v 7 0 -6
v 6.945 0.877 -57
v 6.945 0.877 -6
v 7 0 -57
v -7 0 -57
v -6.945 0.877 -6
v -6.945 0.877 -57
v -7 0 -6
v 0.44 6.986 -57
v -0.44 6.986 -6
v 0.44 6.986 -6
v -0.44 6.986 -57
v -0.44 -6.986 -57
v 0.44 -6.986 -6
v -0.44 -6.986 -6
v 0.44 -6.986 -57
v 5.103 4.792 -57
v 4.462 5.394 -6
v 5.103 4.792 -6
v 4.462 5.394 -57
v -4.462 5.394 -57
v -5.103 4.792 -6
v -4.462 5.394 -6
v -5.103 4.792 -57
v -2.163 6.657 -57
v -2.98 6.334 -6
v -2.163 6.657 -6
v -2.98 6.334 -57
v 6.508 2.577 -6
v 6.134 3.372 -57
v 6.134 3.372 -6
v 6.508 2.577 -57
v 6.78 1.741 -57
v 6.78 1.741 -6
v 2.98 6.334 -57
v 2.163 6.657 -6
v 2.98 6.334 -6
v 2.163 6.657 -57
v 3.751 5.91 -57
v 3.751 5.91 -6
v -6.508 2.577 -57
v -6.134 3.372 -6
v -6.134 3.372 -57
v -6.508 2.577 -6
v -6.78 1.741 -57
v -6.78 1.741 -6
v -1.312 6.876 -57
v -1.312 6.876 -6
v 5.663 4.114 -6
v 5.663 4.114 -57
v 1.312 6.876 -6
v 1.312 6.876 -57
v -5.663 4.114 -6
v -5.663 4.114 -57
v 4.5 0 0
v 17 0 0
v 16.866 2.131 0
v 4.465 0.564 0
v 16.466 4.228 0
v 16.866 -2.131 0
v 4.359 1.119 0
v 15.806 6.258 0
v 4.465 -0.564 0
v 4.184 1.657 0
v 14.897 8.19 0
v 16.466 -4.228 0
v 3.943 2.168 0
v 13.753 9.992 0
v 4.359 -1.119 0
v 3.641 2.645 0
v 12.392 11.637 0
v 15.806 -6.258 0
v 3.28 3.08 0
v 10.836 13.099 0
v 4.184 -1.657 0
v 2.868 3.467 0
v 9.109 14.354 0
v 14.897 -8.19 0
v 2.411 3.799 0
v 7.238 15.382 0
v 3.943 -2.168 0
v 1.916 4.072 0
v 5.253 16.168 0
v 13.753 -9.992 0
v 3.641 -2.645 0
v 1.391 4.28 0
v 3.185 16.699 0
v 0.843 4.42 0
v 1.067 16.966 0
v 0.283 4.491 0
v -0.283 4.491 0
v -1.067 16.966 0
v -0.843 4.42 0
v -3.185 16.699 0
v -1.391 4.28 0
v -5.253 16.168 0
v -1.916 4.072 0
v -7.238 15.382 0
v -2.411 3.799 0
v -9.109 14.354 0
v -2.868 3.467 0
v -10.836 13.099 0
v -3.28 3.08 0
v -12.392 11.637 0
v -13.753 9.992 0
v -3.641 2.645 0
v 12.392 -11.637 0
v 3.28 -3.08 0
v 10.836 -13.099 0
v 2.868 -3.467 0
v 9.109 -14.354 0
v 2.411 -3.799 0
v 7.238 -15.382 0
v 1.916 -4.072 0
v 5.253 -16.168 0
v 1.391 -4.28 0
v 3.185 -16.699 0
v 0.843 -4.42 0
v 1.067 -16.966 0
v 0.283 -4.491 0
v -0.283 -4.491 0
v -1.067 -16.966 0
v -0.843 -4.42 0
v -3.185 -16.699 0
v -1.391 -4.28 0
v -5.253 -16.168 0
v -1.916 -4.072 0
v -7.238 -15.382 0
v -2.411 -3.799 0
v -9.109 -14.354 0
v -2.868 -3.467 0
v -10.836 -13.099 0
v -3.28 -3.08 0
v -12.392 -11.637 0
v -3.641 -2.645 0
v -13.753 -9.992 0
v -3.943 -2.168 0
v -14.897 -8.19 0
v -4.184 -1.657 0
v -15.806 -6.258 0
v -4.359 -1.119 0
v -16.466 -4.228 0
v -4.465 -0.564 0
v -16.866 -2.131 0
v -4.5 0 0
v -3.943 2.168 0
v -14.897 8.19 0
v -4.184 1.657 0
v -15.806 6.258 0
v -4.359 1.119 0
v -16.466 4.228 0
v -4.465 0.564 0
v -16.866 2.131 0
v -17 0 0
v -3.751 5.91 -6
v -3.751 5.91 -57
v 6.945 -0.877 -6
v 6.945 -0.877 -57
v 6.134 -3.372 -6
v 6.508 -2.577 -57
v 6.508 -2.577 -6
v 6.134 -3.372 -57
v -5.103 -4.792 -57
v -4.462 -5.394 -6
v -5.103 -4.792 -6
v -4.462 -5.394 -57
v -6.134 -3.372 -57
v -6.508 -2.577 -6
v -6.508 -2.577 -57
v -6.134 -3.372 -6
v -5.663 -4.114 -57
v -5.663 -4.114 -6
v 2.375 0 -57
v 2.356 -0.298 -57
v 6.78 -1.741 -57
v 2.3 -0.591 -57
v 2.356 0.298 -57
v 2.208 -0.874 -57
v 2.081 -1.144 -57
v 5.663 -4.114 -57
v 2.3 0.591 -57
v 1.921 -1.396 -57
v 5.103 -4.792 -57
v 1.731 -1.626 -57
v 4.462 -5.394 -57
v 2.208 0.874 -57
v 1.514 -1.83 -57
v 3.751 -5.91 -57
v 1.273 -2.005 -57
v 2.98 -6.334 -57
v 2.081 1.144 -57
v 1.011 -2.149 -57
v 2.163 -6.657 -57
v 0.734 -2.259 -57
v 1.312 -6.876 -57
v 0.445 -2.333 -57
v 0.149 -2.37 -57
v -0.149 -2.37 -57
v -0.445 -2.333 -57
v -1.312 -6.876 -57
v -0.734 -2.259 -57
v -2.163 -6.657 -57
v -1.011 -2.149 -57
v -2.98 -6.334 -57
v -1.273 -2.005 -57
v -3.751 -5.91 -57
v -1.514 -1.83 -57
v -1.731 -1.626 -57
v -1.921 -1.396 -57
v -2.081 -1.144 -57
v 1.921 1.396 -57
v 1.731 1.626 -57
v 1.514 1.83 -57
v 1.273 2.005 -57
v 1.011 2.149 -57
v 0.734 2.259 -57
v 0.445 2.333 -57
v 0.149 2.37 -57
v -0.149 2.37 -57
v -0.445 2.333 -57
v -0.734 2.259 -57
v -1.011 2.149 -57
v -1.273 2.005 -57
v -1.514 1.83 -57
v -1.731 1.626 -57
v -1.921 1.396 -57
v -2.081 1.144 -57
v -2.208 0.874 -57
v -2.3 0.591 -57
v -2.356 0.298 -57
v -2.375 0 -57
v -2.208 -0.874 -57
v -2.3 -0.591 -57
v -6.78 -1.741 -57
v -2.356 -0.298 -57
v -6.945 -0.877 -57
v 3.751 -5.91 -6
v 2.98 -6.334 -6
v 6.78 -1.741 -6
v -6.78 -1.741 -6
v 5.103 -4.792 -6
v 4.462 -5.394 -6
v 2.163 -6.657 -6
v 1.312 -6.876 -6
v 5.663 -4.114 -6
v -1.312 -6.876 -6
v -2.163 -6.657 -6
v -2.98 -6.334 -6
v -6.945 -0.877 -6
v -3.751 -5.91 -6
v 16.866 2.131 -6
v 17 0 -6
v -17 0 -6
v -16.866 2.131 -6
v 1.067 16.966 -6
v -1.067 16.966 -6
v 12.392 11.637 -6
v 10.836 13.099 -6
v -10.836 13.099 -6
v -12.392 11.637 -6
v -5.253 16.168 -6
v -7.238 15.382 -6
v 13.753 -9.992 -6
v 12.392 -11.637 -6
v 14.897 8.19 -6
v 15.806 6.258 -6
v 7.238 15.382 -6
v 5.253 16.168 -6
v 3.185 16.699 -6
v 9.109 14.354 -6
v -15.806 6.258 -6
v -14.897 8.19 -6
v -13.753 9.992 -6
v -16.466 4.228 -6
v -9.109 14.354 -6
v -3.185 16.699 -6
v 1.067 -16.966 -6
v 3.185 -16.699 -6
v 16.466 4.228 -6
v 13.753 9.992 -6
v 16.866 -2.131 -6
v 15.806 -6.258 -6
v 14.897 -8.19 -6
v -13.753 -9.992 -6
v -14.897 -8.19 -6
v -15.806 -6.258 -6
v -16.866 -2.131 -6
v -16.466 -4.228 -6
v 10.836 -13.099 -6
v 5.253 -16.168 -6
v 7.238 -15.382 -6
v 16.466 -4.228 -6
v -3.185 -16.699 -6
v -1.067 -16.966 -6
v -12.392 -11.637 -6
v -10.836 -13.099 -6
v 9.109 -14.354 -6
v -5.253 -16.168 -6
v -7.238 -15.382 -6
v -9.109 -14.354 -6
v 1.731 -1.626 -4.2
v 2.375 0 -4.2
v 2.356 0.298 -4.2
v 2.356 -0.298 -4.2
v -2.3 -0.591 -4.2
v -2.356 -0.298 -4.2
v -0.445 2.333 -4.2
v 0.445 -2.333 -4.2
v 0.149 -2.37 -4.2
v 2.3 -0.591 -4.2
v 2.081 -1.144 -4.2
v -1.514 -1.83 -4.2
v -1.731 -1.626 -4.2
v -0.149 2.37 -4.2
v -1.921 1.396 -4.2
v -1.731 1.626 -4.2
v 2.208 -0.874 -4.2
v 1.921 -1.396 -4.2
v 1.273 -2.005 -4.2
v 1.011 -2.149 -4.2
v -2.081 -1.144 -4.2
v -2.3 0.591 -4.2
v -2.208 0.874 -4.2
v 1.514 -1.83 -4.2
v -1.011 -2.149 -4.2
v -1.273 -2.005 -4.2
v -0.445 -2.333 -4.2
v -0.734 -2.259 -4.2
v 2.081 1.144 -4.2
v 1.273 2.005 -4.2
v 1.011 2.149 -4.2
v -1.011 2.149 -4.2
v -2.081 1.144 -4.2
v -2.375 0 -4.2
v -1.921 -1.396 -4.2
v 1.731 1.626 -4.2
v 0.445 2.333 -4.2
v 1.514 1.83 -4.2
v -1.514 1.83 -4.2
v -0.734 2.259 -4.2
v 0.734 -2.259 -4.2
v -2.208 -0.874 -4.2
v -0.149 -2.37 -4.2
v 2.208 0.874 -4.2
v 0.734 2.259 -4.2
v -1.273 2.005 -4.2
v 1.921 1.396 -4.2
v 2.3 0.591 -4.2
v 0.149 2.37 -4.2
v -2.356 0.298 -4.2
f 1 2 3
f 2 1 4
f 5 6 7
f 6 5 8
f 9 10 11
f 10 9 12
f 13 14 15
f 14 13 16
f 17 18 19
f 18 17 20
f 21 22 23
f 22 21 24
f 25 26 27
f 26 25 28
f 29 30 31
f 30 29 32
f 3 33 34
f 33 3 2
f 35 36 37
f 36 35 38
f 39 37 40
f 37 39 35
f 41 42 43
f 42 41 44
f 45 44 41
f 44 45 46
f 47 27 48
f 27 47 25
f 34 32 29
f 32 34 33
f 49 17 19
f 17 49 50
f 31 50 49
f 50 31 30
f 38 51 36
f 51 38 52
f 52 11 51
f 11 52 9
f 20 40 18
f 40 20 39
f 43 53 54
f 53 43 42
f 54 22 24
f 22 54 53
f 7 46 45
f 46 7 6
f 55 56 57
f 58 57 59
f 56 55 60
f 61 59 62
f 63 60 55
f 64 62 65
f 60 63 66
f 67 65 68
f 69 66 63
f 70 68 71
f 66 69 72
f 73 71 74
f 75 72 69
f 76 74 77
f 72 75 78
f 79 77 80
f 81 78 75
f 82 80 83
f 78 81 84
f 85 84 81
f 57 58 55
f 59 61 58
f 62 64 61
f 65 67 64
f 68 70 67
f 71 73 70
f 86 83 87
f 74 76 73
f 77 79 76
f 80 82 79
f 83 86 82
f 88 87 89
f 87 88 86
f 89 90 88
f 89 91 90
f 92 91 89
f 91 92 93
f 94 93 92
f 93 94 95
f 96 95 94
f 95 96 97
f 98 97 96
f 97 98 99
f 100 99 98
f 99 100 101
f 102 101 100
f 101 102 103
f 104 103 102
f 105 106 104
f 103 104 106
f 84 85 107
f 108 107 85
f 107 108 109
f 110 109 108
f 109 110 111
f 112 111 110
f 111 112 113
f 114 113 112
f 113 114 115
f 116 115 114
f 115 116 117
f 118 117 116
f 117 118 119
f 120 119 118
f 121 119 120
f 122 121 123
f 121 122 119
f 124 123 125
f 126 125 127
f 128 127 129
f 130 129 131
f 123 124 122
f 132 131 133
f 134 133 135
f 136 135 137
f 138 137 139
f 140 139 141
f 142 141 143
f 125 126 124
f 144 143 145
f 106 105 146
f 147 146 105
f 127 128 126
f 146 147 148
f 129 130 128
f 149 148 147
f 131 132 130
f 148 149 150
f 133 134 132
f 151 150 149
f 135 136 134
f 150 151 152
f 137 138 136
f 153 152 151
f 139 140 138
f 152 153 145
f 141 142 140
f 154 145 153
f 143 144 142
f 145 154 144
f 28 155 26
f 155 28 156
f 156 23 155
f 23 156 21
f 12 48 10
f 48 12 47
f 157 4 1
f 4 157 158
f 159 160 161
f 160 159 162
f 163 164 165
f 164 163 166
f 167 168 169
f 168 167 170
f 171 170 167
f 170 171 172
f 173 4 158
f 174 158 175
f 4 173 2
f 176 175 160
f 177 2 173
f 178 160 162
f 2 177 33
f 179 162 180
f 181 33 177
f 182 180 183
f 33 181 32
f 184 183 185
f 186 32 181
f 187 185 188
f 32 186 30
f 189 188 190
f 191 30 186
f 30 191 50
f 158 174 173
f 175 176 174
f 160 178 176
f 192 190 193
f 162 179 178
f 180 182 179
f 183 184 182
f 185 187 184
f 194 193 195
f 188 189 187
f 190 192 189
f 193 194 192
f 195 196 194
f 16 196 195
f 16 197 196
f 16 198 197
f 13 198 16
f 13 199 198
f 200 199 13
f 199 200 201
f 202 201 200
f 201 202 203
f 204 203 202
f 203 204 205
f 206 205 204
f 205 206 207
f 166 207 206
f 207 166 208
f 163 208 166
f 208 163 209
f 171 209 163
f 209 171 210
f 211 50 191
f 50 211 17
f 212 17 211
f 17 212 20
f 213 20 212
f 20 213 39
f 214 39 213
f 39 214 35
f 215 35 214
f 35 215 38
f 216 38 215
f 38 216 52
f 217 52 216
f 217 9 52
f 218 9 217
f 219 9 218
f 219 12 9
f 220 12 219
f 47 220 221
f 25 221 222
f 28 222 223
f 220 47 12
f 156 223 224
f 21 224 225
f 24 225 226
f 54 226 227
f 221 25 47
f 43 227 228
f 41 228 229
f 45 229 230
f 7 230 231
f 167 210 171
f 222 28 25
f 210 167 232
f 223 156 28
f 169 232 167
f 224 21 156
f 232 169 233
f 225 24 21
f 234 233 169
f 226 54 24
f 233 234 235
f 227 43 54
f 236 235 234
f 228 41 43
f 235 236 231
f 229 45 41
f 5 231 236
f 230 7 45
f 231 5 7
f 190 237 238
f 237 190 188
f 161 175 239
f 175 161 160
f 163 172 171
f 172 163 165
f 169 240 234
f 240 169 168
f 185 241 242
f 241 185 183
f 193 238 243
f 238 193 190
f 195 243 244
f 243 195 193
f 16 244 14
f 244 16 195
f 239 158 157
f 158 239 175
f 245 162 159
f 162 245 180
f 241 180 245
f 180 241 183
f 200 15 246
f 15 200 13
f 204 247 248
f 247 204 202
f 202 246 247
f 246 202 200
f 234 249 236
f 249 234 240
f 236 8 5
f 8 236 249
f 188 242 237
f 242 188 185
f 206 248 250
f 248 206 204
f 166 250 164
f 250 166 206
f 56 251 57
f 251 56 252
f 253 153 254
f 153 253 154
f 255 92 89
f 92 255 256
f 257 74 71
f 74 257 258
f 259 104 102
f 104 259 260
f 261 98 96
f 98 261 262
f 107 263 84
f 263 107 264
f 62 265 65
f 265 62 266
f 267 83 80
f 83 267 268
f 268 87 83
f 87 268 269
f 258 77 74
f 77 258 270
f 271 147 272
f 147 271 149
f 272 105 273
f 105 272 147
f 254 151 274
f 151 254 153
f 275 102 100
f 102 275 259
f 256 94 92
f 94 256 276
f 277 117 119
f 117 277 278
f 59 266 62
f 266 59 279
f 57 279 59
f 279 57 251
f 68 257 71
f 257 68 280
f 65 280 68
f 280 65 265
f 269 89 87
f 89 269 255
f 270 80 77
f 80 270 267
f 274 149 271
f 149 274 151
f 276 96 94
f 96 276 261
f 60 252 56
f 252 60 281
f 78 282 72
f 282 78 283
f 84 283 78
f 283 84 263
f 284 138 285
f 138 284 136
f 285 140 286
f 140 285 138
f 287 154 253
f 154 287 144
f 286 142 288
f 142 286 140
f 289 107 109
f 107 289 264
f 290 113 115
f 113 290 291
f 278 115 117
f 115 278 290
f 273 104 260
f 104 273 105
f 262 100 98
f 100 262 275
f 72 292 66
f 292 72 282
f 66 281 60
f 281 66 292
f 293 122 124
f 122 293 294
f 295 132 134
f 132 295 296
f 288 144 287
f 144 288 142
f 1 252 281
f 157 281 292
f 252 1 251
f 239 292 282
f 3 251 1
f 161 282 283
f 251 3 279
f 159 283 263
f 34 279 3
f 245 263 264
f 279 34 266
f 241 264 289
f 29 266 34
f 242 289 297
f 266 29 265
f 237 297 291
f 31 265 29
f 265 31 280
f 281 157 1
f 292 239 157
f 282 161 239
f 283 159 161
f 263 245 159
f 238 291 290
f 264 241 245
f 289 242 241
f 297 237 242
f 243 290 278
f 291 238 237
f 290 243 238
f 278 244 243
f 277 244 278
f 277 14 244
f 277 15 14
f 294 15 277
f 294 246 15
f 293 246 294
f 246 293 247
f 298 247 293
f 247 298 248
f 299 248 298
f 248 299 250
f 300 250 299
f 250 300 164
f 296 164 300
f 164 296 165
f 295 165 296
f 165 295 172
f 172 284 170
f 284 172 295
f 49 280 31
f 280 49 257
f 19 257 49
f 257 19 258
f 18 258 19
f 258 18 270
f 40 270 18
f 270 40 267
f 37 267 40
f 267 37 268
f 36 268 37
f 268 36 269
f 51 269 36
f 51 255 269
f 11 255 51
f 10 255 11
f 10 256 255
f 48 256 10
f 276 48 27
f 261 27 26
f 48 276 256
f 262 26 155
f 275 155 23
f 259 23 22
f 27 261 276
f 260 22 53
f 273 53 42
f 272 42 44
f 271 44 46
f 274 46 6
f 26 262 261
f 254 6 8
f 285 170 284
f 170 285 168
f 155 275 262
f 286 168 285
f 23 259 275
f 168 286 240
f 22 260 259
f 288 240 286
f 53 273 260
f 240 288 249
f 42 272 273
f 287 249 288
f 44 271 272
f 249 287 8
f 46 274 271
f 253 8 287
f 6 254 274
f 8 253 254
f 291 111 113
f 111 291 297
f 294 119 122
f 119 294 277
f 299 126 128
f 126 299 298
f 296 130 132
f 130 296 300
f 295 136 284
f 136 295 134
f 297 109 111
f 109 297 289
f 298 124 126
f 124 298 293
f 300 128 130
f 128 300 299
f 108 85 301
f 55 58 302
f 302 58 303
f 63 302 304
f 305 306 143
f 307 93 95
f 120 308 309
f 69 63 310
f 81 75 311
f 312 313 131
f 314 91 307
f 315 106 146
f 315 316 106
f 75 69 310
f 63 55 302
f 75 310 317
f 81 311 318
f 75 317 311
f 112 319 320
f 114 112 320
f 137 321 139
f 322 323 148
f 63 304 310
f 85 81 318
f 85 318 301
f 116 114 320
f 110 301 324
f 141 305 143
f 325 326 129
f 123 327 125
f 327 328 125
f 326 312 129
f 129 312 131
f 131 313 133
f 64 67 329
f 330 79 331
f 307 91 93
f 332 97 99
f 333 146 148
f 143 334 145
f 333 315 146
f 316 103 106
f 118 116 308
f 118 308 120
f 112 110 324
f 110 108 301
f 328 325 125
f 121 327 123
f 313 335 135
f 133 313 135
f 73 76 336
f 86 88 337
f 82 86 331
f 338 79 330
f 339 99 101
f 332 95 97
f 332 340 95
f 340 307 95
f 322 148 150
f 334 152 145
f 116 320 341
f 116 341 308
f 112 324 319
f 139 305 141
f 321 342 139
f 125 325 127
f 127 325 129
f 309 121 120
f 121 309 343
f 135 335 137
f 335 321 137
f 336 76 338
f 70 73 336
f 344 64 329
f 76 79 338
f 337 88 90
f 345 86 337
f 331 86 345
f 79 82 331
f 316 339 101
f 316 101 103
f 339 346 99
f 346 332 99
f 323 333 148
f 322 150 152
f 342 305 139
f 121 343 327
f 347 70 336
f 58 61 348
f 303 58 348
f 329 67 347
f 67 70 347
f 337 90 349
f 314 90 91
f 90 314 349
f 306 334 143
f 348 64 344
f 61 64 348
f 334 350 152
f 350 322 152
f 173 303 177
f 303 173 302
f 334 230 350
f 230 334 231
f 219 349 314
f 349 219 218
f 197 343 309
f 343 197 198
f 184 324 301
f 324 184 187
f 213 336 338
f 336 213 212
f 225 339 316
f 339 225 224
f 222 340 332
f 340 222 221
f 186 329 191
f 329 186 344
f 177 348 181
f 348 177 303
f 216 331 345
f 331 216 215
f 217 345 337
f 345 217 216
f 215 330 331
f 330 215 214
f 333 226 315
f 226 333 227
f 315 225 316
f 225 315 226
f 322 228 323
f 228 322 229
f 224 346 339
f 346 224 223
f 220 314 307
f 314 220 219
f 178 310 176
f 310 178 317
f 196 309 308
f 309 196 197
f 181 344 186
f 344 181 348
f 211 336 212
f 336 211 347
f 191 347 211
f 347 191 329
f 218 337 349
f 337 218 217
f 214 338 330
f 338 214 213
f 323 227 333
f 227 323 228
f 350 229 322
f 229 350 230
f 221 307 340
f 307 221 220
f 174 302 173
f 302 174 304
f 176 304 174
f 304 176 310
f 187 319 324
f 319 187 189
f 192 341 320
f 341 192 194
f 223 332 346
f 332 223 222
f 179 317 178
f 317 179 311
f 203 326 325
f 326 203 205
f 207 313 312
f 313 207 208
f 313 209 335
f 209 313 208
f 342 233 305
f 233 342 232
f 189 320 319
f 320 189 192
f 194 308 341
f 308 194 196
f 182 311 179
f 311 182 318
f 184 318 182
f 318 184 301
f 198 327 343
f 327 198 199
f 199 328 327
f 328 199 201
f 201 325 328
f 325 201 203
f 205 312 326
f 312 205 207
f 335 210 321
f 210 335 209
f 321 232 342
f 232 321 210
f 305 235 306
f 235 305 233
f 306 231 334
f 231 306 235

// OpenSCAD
$fn = 50;


difference() {
	union() {
		translate(v = [0, 0, -57.0000000000]) {
			cylinder(h = 57, r = 7.0000000000);
		}
		translate(v = [0, 0, -6.0000000000]) {
			cylinder(h = 6, r = 17.0000000000);
		}
	}
	union() {
		translate(v = [0, 0, 0]) {
			rotate(a = [0, 0, 0]) {
				difference() {
					union() {
						#translate(v = [0, 0, -57.0000000000]) {
							cylinder(h = 57, r = 2.2500000000);
						}
						#translate(v = [0, 0, -4.2000000000]) {
							cylinder(h = 4.2000000000, r1 = 2.3750000000, r2 = 4.5000000000);
						}
						#translate(v = [0, 0, -57.0000000000]) {
							cylinder(h = 57, r = 2.3750000000);
						}
						#translate(v = [0, 0, -57.0000000000]) {
							cylinder(h = 57, r = 2.2500000000);
						}
					}
					union();
				}
			}
		}
	}
}
